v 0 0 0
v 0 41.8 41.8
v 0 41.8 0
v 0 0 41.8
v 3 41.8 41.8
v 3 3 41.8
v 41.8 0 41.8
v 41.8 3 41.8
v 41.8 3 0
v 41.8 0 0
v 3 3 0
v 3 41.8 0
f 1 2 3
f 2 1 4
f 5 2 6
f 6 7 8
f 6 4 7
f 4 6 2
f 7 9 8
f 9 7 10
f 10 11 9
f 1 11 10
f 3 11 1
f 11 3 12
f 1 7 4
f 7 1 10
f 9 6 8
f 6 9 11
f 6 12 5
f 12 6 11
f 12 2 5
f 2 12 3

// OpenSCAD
// L-shaped angle bracket
// Units: millimeters
// Overall size: 41.8 x 41.8 x 41.8
// Thickness: 3.0

size_x = 41.8;
size_y = 41.8;
size_z = 41.8;
thickness = 3.0;

module l_bracket() {
    union() {
        cube([size_x, thickness, size_z], center = false);
        cube([thickness, size_y, size_z], center = false);
    }
}

color("LightSteelBlue")
    l_bracket();
